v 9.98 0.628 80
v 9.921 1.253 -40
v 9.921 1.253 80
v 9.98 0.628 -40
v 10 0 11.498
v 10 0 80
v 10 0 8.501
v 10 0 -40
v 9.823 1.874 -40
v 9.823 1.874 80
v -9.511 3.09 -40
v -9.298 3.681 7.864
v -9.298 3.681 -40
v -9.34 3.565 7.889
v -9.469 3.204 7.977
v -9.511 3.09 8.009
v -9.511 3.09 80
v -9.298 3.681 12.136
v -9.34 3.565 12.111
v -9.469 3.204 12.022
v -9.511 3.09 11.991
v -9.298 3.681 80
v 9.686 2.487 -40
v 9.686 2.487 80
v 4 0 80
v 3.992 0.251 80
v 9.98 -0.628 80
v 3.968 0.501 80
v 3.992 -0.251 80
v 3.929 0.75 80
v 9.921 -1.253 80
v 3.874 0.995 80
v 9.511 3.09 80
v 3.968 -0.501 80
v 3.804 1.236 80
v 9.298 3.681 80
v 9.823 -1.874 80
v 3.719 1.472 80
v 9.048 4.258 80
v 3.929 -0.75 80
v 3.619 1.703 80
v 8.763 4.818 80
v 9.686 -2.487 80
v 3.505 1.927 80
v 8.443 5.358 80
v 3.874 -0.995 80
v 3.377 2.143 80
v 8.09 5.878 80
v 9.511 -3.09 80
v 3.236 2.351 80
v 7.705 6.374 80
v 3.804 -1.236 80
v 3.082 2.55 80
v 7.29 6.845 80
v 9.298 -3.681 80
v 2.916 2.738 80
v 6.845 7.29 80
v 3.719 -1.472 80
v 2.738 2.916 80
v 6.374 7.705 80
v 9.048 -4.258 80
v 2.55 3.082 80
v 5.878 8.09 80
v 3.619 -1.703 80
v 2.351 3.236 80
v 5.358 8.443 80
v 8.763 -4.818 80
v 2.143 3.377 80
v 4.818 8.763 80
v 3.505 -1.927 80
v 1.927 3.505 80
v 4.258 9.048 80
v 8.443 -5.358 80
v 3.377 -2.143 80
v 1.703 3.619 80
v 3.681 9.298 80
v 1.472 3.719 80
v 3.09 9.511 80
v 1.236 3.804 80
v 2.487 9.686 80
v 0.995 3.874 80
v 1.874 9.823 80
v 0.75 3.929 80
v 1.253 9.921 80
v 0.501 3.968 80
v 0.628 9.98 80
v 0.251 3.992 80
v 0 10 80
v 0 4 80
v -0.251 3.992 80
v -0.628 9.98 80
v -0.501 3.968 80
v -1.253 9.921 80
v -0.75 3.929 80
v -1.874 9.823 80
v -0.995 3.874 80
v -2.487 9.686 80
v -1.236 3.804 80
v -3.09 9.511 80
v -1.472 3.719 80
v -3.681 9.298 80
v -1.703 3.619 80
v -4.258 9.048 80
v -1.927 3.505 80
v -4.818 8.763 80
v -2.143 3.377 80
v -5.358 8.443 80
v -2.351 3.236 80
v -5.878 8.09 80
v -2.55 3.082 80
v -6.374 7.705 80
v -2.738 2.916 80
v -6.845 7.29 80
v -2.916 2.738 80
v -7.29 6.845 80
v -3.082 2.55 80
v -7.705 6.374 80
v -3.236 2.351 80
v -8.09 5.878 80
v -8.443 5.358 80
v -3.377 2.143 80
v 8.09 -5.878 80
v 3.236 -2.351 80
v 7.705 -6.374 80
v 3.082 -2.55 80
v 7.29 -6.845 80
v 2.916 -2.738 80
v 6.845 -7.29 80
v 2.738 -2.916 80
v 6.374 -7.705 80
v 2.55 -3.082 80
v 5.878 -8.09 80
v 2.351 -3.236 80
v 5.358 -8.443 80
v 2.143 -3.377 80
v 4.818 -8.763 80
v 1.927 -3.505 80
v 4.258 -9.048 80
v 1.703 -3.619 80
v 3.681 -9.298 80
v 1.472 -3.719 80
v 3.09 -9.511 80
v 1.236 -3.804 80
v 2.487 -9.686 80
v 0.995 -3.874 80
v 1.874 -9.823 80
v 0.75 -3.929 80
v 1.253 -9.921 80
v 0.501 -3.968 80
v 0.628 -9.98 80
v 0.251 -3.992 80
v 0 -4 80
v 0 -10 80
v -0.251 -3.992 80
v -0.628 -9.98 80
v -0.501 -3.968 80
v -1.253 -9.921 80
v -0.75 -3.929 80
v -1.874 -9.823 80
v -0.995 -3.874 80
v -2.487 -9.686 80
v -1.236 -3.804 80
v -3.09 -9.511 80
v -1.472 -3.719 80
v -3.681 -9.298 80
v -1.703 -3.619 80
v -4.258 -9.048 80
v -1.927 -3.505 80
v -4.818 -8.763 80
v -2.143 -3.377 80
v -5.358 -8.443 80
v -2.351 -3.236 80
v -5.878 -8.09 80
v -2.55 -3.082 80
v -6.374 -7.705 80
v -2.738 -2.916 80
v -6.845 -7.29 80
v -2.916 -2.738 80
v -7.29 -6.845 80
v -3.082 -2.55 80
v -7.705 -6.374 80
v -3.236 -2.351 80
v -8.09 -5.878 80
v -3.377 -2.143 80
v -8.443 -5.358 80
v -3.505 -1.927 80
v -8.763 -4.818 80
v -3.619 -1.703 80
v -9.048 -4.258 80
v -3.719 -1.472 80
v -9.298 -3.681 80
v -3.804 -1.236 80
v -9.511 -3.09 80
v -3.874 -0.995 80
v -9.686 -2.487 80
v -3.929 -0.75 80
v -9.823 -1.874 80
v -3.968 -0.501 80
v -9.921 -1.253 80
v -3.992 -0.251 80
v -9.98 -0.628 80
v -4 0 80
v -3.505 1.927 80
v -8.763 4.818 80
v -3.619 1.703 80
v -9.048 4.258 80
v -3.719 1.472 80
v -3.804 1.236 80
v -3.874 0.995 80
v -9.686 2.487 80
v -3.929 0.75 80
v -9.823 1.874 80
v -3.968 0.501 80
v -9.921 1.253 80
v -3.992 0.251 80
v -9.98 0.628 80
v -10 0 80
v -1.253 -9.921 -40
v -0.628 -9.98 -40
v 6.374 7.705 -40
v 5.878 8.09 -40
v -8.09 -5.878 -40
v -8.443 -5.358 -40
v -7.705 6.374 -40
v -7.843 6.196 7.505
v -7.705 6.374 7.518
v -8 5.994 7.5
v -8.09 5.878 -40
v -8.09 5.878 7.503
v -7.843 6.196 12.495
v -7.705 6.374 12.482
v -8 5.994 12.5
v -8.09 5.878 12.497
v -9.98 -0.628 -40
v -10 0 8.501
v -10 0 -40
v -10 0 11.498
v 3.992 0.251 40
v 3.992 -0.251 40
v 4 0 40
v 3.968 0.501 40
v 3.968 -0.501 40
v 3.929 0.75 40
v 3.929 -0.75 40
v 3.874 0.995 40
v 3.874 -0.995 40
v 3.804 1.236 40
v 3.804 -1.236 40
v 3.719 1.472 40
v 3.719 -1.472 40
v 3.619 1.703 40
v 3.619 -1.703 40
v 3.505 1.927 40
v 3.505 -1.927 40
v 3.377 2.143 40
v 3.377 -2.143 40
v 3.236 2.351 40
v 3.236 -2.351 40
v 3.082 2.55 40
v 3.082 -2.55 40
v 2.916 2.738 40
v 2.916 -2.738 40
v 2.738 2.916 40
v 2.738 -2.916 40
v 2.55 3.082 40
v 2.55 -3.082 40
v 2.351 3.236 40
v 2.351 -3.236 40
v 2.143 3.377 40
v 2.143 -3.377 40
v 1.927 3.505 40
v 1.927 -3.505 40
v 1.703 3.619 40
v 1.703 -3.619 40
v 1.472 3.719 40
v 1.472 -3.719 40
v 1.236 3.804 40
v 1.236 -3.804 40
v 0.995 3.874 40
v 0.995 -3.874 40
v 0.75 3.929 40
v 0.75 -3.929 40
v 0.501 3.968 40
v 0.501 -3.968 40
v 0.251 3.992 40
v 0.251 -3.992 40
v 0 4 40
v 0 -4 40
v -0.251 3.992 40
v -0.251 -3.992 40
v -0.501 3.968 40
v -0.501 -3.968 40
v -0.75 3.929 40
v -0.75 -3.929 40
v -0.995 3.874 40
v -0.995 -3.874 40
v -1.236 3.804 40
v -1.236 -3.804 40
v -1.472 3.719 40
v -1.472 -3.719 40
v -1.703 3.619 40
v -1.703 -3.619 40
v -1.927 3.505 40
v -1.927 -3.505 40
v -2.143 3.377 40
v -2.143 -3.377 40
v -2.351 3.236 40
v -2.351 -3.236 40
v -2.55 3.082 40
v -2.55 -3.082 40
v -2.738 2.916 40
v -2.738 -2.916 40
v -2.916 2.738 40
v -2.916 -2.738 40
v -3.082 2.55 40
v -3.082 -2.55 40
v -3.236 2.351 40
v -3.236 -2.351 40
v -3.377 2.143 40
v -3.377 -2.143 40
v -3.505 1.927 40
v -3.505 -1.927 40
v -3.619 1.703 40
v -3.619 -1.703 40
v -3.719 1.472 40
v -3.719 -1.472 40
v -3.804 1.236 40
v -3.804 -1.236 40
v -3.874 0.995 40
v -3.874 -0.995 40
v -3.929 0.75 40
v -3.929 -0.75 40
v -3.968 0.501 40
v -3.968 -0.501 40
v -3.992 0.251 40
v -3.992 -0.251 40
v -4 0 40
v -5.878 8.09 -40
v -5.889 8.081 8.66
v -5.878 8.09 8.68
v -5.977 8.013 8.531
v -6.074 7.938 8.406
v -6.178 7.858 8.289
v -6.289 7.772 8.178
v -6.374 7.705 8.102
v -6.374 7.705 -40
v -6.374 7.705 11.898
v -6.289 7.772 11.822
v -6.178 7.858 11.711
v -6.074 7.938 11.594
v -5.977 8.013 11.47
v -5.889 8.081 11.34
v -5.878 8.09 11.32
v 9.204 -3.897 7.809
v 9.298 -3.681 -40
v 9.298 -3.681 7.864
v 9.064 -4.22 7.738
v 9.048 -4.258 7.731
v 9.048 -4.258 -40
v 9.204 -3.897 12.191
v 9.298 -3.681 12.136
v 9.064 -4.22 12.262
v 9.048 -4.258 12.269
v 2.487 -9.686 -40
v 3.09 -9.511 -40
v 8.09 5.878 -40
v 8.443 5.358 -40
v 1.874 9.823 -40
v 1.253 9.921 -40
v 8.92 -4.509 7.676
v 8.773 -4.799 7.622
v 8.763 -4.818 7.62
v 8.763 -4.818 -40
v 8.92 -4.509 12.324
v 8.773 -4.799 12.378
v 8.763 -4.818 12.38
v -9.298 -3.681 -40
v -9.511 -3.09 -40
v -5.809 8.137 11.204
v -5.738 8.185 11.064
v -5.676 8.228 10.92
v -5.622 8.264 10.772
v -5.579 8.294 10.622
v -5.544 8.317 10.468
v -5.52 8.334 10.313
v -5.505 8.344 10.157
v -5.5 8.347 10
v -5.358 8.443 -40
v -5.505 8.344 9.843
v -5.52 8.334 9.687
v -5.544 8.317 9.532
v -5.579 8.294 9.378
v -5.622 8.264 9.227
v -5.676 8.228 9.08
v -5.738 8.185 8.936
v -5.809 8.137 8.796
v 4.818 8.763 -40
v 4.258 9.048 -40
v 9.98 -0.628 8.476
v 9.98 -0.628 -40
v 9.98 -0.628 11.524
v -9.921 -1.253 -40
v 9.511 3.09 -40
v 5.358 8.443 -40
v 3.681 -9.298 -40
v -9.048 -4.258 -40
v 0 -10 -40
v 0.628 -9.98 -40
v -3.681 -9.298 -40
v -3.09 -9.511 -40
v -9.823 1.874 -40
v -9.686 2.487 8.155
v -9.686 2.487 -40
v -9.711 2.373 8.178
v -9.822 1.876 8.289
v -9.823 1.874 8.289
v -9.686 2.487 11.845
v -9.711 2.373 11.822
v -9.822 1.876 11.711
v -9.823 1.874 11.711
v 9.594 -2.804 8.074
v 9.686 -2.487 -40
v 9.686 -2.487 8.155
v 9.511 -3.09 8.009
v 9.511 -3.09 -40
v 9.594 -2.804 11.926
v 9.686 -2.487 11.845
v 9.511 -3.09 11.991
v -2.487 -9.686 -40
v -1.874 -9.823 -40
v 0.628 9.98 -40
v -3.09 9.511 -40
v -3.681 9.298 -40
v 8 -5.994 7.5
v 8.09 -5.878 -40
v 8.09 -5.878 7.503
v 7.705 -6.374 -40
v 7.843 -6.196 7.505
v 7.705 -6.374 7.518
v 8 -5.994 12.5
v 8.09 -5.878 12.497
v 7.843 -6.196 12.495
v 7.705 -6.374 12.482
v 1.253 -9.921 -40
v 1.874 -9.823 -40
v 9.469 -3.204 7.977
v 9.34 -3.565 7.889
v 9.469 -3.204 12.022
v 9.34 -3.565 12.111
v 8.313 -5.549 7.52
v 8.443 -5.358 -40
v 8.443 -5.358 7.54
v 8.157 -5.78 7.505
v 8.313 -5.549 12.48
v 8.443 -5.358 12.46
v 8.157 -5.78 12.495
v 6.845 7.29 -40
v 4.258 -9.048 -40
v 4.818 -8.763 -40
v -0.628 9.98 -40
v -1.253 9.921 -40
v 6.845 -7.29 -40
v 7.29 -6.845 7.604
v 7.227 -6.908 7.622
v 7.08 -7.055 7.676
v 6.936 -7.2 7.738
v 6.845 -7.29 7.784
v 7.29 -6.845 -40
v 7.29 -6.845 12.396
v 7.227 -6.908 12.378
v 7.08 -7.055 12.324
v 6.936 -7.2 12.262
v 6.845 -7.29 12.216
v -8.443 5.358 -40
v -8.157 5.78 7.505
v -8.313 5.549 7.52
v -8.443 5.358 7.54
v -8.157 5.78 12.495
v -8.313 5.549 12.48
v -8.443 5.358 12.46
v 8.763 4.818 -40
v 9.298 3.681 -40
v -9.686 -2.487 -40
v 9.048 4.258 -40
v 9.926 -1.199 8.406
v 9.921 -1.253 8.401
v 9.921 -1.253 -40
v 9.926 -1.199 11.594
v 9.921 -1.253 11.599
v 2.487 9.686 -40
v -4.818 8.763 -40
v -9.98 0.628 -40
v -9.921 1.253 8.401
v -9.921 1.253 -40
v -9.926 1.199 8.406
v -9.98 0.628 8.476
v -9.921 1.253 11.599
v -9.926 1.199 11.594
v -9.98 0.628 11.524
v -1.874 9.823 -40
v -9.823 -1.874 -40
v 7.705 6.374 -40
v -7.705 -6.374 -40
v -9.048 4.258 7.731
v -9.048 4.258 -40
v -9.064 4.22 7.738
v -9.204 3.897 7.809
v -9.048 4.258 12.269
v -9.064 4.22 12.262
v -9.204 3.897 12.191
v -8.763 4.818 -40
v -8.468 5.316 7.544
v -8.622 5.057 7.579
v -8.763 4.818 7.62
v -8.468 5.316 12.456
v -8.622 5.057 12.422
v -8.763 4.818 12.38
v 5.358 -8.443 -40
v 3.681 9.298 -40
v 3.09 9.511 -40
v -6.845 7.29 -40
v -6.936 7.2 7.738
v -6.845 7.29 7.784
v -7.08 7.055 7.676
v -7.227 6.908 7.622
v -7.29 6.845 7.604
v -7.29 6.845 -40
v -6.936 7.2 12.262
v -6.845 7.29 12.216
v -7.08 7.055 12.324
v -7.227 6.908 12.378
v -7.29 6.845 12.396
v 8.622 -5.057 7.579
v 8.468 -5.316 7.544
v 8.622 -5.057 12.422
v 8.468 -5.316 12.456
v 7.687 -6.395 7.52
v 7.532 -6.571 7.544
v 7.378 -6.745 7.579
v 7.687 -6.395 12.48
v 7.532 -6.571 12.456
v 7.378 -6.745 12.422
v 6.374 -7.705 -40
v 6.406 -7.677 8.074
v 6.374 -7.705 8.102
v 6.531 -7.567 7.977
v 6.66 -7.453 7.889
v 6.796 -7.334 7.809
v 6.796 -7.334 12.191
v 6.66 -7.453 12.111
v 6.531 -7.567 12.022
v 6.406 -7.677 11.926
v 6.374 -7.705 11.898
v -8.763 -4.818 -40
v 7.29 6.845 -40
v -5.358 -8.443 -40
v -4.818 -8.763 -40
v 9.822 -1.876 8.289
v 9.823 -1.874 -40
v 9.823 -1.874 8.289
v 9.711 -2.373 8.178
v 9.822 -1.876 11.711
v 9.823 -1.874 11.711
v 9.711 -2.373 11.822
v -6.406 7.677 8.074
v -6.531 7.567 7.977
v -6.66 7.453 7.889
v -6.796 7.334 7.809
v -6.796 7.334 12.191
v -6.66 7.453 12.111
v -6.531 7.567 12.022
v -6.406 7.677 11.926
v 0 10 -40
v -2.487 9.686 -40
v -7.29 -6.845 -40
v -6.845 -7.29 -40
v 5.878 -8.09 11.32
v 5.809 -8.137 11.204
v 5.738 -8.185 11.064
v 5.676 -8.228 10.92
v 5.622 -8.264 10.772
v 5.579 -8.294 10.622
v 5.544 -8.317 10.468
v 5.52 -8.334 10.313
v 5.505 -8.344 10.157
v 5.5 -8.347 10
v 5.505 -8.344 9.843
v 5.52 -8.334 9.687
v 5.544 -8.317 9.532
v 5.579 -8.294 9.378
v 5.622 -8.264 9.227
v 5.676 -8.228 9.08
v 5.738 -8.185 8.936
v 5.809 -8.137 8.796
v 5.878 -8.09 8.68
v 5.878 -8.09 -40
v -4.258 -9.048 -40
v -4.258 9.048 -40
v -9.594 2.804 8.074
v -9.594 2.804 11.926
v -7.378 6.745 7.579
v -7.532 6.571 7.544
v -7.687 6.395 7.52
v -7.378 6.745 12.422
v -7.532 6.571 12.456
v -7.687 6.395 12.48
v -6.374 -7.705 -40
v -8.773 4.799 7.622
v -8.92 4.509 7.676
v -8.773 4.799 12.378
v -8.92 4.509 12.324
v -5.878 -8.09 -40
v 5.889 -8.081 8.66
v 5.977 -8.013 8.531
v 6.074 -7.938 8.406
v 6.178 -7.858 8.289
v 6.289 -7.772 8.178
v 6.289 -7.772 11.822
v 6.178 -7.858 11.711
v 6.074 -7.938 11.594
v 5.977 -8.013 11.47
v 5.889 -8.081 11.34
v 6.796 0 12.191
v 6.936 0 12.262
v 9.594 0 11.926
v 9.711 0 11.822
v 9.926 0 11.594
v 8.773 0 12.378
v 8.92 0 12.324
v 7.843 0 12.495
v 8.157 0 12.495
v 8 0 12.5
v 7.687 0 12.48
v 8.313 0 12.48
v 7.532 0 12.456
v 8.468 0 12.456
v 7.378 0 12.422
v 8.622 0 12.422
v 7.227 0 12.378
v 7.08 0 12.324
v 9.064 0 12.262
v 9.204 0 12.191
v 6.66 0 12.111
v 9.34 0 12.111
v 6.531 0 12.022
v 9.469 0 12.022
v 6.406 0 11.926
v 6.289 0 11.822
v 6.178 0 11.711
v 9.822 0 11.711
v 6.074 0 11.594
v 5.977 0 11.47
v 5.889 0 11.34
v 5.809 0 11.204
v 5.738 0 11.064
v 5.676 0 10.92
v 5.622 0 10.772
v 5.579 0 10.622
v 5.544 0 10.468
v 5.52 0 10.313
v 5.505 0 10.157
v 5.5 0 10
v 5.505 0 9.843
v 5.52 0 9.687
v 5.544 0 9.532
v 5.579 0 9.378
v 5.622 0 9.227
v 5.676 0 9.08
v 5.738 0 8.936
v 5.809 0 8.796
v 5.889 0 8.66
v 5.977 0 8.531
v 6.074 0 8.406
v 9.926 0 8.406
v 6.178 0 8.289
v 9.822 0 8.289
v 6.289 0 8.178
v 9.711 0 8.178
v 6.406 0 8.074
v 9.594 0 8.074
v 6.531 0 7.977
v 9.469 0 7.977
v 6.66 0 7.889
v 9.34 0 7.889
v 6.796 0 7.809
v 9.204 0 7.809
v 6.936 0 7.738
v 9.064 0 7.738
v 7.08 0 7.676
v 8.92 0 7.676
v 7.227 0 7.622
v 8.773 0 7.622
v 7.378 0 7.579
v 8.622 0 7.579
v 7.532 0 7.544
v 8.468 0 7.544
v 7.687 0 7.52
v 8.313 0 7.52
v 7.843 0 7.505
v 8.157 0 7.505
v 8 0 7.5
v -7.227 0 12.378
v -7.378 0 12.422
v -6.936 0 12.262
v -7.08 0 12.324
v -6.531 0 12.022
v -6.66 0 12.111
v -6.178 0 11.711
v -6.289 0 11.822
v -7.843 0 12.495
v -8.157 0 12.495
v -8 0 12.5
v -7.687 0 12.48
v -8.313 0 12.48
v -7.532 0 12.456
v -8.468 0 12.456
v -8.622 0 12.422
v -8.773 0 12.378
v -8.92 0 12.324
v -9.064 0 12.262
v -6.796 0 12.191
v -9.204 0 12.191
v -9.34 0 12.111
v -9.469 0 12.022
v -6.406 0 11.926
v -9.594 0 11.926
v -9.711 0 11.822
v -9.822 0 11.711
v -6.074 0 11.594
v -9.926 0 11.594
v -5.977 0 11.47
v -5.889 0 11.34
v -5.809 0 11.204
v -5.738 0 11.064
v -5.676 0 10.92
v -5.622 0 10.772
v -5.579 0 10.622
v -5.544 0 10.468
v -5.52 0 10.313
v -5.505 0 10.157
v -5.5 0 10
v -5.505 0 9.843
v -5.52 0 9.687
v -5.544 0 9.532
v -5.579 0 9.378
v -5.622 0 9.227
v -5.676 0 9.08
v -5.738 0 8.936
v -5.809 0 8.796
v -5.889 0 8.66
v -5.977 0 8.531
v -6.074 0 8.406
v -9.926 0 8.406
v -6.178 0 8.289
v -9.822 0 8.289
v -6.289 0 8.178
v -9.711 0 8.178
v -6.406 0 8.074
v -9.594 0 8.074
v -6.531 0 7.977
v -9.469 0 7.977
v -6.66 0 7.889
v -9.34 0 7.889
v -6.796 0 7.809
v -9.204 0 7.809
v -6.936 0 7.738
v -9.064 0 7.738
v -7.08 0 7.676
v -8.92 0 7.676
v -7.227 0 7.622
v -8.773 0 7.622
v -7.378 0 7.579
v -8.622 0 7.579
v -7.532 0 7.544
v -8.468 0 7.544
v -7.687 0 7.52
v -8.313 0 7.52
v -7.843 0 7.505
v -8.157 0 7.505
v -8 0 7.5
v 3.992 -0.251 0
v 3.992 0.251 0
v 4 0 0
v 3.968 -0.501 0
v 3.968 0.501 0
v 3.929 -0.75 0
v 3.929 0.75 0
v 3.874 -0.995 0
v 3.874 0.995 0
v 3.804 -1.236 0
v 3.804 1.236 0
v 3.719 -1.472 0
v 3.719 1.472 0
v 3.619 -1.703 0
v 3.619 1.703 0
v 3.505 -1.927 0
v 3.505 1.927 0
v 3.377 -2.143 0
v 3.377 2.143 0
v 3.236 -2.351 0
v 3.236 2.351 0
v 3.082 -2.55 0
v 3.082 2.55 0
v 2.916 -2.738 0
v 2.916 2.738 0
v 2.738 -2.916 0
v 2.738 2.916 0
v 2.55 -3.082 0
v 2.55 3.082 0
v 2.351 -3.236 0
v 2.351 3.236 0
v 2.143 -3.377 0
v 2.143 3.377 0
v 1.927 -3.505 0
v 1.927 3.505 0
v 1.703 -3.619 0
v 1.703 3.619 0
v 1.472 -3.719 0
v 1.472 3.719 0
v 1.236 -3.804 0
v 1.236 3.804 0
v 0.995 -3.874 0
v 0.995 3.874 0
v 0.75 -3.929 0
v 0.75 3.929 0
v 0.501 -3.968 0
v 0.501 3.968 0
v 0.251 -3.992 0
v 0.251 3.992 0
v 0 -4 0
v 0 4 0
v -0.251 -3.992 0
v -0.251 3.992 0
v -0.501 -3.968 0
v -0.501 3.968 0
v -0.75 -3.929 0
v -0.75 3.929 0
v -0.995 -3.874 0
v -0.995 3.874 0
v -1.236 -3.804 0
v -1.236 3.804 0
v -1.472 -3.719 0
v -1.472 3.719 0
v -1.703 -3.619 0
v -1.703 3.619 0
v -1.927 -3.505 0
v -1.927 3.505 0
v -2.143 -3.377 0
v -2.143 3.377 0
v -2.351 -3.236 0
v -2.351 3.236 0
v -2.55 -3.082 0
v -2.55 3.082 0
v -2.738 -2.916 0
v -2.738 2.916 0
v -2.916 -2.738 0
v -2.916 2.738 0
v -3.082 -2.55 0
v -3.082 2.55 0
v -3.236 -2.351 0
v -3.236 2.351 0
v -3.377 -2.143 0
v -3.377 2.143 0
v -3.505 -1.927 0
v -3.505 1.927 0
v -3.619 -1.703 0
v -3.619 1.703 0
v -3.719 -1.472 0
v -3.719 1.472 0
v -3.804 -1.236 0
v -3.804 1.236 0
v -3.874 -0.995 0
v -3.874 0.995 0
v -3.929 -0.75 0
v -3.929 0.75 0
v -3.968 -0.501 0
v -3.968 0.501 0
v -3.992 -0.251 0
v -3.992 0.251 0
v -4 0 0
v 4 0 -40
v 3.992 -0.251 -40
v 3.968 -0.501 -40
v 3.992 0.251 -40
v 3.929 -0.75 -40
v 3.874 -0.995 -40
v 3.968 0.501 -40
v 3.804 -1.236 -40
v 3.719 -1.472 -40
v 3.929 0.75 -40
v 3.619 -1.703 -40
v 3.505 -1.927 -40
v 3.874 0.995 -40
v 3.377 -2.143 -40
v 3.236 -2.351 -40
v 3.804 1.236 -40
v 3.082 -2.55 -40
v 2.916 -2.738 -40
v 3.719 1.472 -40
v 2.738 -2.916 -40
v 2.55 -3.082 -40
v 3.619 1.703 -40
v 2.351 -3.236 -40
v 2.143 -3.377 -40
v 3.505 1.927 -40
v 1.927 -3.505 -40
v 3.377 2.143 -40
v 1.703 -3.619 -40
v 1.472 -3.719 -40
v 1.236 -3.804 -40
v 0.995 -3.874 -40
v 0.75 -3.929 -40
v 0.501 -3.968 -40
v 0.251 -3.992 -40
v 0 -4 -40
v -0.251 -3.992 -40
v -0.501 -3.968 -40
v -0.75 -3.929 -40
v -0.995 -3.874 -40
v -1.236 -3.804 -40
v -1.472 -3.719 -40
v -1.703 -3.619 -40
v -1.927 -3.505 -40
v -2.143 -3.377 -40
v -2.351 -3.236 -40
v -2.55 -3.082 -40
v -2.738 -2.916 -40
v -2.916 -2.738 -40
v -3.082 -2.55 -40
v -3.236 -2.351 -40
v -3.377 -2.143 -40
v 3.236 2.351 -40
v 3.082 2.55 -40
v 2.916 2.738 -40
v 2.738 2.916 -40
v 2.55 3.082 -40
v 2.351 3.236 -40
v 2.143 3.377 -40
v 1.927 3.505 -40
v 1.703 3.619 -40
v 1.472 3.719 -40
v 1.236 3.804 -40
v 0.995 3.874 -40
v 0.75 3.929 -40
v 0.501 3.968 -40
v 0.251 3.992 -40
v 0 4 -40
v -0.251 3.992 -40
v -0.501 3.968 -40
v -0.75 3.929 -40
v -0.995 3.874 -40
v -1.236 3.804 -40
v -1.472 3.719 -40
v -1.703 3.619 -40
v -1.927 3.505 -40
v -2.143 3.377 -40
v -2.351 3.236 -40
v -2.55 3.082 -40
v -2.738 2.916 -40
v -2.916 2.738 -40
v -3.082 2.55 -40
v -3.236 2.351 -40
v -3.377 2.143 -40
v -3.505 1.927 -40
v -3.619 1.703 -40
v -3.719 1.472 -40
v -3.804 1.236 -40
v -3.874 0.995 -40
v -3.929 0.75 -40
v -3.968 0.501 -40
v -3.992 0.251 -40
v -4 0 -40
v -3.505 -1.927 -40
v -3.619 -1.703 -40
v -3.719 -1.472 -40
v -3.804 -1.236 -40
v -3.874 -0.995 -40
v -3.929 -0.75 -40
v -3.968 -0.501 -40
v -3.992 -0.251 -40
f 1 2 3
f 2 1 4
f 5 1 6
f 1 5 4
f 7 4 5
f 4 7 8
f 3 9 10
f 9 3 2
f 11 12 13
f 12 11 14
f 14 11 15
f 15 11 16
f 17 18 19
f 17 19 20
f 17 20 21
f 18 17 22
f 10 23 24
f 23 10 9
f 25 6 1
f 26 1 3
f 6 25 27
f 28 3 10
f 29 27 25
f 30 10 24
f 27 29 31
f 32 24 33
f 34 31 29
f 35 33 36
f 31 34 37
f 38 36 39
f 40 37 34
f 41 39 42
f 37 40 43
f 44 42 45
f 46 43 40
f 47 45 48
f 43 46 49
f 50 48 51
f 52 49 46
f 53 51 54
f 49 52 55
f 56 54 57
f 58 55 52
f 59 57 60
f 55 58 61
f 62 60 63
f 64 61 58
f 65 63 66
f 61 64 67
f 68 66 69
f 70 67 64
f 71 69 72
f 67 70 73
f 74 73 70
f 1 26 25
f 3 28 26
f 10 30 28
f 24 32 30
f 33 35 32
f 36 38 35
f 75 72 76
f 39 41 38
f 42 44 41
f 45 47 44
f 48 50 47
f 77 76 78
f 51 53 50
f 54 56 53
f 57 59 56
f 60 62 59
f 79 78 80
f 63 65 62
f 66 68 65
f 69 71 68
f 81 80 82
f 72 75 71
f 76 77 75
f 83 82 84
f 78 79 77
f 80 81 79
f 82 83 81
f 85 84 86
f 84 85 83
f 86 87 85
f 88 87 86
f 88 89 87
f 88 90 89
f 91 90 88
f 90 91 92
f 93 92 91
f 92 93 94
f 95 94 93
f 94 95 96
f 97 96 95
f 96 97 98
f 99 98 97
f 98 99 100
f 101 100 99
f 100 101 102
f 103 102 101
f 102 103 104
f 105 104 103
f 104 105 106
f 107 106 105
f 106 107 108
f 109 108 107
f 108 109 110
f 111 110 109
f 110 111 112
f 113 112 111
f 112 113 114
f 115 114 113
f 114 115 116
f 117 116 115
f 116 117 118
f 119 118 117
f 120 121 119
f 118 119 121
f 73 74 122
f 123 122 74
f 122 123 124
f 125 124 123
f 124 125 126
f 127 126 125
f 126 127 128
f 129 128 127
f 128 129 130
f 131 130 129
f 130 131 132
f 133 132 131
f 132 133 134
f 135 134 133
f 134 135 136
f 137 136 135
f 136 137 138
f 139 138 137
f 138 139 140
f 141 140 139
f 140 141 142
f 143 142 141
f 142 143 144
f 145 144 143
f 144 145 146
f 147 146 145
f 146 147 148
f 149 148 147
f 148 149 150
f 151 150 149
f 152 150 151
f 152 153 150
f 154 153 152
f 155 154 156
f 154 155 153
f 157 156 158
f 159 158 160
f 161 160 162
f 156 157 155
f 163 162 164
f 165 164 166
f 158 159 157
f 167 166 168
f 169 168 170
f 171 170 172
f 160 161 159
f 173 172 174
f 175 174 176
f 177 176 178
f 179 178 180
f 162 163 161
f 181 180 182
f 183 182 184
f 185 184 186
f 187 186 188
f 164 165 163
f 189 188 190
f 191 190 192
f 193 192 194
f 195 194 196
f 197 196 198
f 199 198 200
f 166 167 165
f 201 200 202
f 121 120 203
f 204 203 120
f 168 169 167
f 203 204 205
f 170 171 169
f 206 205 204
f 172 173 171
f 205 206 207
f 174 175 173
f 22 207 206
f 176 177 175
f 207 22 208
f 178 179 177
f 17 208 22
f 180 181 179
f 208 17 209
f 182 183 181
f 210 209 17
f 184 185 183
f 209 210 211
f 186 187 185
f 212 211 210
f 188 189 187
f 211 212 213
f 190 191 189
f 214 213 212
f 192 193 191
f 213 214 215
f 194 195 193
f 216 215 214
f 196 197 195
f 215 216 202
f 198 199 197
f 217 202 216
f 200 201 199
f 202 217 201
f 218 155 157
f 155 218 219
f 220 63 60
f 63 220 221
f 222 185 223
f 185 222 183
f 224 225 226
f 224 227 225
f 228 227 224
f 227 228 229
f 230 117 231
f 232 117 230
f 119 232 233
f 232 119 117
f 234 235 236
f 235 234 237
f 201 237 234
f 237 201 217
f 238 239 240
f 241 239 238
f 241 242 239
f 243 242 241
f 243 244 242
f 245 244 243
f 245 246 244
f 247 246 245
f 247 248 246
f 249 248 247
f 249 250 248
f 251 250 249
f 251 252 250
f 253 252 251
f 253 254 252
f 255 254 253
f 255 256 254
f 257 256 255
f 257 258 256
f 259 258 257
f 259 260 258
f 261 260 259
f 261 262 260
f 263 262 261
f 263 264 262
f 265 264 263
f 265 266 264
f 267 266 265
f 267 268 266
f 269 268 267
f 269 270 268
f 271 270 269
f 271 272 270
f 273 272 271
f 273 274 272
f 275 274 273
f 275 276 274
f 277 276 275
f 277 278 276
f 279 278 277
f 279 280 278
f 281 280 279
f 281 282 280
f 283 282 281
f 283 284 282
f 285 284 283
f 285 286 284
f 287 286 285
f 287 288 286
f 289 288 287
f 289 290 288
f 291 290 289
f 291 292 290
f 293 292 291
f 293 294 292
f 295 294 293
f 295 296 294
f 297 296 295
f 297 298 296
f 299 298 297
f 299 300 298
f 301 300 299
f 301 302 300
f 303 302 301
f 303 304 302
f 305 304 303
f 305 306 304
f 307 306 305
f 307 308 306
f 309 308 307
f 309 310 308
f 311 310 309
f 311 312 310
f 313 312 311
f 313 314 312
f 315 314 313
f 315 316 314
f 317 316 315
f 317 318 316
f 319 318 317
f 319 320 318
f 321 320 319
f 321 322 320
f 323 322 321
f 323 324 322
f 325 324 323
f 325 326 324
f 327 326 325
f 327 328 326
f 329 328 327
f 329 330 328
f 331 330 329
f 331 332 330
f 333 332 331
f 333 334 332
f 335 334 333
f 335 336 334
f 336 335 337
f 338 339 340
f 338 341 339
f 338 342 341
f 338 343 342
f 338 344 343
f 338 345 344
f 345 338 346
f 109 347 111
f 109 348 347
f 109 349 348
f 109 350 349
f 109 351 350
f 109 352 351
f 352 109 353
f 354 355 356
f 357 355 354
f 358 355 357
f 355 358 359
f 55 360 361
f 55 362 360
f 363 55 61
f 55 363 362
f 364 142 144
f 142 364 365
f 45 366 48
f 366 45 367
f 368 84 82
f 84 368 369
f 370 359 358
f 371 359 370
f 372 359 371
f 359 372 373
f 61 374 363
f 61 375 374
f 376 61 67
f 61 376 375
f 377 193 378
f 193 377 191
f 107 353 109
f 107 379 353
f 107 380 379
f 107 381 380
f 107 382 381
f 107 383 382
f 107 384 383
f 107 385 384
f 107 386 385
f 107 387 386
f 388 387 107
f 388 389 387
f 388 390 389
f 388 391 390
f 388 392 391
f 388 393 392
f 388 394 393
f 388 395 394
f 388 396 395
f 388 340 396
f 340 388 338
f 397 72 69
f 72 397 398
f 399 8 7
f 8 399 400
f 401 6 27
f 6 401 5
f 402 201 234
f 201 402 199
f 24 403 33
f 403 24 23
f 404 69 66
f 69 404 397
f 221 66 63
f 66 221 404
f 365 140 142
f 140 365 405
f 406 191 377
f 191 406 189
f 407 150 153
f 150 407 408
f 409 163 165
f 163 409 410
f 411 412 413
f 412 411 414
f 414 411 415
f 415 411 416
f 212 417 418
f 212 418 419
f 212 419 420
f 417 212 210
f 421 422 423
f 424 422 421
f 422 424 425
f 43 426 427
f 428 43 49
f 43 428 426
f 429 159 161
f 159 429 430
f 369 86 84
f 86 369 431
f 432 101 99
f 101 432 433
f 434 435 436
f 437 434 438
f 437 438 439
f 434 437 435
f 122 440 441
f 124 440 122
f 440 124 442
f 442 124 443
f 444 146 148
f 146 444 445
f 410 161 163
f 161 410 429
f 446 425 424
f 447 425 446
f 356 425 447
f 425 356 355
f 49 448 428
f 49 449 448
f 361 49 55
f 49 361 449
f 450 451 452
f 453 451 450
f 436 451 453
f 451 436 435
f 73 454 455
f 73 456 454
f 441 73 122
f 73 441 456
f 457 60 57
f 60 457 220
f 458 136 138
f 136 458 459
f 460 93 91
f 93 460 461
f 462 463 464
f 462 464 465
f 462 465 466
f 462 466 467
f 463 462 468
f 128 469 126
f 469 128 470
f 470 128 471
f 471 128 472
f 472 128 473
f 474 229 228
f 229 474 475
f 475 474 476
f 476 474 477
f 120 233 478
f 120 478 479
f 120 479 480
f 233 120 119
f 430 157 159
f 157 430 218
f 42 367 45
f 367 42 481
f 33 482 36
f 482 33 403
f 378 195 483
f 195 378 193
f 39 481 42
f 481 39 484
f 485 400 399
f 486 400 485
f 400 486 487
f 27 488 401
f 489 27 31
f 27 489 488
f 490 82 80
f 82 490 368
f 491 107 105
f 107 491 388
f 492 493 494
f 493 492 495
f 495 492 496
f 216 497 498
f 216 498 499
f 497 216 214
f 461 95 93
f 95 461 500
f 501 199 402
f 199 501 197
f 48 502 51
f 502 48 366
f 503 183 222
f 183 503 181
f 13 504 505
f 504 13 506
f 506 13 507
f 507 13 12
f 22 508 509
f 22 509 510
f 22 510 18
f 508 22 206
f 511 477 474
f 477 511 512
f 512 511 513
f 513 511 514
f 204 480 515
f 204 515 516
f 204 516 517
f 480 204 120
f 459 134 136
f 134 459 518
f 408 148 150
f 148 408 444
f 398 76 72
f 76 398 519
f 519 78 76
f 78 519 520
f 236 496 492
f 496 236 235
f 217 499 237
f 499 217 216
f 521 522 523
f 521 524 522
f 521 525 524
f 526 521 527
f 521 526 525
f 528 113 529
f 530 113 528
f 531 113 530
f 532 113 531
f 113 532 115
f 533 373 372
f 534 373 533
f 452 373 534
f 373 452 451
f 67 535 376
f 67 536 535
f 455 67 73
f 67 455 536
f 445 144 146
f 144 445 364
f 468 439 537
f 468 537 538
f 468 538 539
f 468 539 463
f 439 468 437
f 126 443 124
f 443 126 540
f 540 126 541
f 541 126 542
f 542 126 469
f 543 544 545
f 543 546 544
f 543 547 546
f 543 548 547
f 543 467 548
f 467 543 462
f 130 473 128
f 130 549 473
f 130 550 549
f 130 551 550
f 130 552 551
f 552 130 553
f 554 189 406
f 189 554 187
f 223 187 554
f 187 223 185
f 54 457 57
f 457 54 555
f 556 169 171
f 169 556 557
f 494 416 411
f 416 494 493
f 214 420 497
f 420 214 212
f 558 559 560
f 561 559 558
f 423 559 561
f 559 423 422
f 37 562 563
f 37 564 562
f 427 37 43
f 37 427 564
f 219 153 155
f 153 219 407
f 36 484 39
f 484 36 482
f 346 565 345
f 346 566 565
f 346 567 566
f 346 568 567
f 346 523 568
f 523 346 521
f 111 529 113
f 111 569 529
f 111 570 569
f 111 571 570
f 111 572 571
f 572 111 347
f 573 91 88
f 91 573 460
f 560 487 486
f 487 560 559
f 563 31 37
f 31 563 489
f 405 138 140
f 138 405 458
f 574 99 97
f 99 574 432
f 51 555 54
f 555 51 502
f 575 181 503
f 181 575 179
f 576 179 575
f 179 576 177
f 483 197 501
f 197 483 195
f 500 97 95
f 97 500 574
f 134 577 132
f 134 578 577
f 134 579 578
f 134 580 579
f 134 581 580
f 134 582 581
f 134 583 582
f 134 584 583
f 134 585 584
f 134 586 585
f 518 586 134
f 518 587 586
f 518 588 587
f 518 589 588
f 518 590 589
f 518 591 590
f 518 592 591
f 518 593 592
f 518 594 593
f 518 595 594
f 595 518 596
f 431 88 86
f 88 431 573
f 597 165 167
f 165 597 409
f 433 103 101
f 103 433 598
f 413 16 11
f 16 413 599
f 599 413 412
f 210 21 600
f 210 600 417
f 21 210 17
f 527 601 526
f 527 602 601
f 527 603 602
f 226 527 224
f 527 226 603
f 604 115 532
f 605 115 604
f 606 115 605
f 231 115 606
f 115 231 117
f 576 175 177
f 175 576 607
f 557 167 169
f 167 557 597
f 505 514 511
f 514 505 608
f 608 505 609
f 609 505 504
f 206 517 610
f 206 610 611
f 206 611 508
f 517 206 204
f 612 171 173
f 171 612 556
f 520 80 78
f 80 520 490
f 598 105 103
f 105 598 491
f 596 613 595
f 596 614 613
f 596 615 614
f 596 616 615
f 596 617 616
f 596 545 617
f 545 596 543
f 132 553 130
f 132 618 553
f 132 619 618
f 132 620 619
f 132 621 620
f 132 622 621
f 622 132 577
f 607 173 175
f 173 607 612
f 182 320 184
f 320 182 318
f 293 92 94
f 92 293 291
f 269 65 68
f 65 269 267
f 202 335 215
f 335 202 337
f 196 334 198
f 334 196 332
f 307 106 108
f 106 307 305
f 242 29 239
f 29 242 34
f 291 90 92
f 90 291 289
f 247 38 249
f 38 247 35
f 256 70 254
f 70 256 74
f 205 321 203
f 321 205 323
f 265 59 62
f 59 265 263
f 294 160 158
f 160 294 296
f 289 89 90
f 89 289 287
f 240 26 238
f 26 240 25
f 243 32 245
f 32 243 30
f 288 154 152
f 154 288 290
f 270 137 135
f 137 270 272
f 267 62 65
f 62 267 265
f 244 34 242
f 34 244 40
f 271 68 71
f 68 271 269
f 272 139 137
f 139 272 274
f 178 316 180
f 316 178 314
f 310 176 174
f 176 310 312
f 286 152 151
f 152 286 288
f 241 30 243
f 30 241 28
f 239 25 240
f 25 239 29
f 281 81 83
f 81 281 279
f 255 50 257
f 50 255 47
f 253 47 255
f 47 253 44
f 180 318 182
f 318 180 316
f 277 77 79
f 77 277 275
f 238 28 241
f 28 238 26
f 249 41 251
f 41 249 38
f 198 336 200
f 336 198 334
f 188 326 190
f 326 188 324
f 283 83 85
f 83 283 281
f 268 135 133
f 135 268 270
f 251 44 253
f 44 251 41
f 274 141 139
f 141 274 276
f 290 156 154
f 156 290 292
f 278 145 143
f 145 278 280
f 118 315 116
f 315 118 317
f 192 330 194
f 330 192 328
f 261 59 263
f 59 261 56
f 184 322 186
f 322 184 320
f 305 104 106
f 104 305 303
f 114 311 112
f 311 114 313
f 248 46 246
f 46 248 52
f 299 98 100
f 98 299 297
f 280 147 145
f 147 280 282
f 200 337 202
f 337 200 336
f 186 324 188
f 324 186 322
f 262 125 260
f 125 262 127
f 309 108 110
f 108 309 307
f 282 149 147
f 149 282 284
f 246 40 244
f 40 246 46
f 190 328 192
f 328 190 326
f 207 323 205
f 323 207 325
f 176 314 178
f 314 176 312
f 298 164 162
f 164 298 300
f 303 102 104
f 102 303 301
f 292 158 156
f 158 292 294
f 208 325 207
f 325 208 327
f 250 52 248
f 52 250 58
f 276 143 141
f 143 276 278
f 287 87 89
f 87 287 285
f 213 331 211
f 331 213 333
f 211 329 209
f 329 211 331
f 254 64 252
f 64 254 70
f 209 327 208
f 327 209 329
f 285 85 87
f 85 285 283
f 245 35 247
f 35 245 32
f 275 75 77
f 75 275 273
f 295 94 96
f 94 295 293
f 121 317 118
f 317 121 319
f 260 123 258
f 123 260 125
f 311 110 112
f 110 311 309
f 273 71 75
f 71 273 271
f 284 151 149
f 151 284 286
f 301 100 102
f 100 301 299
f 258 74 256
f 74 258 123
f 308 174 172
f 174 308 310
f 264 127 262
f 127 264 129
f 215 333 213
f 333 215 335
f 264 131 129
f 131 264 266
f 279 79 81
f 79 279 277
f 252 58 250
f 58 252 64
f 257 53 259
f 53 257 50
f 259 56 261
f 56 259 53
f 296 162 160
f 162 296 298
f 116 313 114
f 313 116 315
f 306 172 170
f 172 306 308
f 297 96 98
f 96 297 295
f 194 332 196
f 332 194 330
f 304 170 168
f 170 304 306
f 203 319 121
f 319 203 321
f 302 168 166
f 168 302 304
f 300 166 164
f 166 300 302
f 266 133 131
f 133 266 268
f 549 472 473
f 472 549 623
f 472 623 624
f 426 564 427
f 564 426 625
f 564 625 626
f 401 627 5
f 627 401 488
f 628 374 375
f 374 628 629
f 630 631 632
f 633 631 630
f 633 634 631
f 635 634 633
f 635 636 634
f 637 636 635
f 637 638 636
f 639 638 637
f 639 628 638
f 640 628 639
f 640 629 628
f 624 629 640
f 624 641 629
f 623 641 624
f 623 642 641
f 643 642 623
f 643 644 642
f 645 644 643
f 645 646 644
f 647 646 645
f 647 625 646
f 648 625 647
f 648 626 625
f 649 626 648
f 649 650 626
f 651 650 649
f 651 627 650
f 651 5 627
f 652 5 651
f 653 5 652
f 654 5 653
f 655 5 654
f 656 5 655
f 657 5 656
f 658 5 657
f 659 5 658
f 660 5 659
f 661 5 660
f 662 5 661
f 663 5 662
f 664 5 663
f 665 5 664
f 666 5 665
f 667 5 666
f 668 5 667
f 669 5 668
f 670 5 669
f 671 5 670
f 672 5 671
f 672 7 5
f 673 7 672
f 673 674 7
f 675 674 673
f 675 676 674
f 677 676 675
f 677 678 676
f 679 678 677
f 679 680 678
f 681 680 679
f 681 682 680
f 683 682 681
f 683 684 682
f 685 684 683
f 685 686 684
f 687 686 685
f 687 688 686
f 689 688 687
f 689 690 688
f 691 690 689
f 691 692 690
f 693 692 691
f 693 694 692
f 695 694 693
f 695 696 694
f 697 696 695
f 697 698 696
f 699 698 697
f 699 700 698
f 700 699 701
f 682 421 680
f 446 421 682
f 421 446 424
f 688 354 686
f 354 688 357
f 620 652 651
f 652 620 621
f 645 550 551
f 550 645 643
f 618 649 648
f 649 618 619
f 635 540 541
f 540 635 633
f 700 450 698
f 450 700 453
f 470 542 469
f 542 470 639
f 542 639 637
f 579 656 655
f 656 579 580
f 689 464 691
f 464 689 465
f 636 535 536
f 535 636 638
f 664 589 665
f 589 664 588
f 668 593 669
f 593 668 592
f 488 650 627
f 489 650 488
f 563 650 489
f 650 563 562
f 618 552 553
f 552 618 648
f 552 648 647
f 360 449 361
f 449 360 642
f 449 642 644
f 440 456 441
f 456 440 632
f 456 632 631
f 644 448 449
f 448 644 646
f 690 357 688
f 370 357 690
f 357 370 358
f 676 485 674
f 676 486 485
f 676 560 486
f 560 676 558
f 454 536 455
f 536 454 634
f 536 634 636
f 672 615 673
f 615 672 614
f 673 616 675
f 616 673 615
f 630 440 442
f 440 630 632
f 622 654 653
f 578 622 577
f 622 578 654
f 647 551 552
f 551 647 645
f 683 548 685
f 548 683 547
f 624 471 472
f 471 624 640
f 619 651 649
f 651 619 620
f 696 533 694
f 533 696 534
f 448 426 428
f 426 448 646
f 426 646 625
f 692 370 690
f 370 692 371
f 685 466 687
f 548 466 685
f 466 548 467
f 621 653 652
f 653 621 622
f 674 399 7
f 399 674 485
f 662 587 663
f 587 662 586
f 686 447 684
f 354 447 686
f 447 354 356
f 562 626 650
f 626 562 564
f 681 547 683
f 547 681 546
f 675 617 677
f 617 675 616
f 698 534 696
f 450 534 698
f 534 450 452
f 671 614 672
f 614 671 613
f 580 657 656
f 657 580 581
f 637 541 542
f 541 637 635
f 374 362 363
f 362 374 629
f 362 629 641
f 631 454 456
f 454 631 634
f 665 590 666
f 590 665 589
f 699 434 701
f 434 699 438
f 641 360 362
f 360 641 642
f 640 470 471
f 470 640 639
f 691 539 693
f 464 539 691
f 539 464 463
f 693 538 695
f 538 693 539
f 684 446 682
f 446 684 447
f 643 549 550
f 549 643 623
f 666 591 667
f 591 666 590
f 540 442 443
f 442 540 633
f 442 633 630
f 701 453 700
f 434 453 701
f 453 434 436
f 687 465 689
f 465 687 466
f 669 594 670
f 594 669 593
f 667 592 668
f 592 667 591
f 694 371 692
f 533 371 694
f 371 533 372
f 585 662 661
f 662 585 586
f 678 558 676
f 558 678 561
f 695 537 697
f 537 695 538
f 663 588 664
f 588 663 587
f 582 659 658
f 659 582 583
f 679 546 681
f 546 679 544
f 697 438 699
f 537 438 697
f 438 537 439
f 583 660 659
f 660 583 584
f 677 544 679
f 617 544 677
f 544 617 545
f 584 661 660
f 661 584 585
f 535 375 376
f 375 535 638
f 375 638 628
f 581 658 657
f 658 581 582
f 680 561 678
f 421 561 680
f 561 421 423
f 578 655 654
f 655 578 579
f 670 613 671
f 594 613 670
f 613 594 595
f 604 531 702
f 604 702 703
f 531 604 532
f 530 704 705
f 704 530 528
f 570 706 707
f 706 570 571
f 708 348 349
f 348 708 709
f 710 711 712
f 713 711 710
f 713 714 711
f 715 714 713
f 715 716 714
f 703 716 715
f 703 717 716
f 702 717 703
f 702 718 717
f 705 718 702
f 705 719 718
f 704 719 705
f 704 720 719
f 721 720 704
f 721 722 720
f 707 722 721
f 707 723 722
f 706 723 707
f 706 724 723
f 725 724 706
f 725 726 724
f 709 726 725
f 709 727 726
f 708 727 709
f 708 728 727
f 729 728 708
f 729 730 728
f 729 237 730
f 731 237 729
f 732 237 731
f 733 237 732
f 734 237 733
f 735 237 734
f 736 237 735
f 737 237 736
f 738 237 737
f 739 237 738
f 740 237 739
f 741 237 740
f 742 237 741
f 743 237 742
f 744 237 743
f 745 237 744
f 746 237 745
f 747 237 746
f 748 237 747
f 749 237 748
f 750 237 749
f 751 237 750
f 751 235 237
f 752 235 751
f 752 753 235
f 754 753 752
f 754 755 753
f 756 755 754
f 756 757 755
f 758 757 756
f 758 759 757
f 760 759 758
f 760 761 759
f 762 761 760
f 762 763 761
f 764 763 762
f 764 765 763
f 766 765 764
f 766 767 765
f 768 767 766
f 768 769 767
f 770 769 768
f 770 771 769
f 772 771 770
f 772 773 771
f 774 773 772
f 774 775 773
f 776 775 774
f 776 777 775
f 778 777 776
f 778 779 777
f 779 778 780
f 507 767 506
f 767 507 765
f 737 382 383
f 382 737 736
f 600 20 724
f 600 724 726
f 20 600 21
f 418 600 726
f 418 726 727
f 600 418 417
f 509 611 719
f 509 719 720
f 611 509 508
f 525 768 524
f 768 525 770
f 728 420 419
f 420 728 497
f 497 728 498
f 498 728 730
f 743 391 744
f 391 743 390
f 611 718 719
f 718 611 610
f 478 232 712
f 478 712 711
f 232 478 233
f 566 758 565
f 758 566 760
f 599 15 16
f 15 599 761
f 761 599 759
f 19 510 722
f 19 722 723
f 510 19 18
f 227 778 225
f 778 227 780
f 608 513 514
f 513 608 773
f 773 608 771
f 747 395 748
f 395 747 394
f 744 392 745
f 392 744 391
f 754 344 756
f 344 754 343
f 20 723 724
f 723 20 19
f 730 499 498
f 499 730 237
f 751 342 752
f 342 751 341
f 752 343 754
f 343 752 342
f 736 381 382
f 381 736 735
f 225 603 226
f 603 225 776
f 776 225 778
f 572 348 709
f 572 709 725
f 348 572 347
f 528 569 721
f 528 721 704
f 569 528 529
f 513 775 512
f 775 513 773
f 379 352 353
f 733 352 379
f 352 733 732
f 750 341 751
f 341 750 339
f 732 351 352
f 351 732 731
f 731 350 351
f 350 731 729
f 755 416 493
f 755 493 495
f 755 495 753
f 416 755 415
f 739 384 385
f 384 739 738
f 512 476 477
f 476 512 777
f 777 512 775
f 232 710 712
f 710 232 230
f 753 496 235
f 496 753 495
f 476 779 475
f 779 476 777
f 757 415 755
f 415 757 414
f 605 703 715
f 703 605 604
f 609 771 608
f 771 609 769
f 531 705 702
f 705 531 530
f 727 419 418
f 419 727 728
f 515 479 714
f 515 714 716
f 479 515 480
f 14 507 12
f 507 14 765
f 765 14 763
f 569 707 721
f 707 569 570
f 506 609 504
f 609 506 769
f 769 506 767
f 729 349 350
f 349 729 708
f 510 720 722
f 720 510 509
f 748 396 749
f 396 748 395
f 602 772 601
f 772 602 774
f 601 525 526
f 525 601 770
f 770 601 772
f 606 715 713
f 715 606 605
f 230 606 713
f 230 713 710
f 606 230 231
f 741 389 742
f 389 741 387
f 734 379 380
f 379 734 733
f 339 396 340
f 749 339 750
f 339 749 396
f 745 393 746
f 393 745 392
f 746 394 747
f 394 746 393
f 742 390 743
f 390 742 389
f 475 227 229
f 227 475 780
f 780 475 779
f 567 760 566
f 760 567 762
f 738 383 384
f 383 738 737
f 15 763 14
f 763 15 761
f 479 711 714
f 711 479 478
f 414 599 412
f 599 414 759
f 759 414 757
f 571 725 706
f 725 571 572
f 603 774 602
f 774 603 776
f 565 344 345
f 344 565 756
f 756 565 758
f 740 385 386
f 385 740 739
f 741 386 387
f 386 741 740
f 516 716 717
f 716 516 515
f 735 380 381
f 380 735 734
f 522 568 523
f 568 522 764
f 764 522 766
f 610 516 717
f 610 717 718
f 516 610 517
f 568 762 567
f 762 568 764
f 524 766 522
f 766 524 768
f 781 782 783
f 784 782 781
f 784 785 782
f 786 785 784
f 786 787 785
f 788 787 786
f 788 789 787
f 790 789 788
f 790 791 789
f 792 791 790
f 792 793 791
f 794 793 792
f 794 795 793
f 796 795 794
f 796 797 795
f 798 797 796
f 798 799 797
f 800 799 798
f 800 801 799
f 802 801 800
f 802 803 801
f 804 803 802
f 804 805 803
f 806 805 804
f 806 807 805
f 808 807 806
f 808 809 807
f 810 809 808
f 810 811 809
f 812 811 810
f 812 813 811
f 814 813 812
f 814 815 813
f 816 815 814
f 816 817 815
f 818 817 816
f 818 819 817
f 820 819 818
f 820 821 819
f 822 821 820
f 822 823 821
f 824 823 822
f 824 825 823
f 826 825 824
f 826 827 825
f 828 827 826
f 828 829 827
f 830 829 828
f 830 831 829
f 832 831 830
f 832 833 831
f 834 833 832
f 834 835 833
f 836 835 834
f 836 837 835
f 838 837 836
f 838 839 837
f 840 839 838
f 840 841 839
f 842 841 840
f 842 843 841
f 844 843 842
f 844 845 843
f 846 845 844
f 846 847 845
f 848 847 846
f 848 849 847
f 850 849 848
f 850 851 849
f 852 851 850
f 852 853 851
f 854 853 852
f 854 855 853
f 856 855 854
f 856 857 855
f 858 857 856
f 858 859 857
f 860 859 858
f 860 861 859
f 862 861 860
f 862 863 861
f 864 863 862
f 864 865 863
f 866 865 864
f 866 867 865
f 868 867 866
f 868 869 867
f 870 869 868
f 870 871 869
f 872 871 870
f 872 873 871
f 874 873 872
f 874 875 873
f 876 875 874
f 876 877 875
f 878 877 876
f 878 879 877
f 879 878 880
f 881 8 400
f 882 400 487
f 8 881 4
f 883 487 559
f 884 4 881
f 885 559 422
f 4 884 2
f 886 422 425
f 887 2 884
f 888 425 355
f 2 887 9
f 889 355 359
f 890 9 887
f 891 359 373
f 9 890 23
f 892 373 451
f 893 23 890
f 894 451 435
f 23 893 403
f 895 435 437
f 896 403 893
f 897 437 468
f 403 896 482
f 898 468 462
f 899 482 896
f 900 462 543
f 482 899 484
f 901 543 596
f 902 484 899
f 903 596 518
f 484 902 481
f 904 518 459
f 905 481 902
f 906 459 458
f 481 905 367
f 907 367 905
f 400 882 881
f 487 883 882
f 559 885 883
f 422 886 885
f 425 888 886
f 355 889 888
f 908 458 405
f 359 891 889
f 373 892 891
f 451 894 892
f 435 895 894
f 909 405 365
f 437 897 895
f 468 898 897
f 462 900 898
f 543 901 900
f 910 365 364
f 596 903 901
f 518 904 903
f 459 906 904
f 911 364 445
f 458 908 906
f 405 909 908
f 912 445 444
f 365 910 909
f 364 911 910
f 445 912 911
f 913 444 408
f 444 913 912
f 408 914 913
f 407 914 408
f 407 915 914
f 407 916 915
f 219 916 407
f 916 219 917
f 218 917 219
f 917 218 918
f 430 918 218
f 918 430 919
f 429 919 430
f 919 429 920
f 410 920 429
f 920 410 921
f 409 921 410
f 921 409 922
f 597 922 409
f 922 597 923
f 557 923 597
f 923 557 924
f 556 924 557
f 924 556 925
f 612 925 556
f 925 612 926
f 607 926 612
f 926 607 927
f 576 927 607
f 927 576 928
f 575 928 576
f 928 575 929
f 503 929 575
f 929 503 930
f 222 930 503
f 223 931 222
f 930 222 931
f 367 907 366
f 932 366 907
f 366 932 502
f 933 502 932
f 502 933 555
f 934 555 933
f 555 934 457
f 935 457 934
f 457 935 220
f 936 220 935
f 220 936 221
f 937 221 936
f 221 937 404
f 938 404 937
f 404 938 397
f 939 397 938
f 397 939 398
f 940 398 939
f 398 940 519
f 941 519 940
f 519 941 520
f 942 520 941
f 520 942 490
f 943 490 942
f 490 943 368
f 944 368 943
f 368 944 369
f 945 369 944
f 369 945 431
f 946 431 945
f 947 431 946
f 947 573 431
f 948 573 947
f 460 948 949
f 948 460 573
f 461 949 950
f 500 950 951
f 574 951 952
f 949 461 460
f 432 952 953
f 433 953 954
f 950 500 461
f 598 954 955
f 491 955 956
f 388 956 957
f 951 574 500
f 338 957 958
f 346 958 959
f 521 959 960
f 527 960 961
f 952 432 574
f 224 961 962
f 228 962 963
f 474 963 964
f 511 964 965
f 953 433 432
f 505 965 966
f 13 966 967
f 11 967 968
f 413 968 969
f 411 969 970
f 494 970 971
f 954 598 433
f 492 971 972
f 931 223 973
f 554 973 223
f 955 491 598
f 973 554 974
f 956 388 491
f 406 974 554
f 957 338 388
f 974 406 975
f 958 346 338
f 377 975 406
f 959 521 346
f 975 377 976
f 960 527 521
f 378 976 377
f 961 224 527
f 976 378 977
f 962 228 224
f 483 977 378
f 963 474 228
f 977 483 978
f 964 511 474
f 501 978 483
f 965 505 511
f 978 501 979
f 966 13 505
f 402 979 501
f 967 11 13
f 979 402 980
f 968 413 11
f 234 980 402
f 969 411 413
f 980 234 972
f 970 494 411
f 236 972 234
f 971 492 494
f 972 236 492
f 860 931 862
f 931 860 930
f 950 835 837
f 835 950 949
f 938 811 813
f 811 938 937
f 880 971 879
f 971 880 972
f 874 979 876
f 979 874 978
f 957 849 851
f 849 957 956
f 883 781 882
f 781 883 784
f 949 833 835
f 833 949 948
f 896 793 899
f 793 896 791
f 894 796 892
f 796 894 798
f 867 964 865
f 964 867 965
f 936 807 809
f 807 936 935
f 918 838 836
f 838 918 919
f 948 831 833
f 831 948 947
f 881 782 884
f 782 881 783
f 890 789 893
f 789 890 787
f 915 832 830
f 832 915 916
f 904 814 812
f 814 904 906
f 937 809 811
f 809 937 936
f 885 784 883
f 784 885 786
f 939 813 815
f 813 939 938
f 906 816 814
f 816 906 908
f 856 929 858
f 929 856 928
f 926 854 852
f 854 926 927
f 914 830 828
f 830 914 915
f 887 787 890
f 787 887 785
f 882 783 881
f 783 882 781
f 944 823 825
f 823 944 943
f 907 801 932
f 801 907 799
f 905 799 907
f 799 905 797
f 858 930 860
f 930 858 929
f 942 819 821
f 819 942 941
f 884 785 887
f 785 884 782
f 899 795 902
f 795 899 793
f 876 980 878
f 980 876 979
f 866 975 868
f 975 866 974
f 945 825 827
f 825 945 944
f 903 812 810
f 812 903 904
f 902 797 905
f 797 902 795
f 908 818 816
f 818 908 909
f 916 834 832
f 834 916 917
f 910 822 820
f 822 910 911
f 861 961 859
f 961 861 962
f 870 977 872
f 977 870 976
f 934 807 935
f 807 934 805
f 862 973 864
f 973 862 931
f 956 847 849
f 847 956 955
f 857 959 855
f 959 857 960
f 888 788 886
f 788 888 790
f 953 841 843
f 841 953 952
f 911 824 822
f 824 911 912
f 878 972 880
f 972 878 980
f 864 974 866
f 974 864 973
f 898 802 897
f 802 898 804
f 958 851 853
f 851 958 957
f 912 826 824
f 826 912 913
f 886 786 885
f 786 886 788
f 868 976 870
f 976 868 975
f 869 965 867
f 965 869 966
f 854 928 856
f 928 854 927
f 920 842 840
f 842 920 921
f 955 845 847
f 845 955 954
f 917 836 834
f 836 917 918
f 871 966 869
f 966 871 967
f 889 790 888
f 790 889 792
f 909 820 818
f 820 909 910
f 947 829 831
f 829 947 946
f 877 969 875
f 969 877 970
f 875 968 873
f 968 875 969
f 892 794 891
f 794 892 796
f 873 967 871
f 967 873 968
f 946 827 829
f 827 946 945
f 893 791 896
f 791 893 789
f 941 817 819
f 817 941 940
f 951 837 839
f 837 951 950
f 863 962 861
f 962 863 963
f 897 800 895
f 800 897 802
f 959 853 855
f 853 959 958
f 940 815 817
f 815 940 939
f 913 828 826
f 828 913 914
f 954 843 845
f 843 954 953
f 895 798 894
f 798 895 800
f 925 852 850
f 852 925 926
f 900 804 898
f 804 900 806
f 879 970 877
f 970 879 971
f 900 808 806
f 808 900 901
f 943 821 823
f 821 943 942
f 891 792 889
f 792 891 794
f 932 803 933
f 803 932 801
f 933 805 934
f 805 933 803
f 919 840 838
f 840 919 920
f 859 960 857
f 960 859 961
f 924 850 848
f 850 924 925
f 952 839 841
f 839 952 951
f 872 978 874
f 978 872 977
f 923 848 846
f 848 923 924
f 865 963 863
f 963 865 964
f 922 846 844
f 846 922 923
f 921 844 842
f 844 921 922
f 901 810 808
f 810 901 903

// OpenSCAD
// Parameters
cylinder_diameter = 20;
cylinder_length = 40;
shaft_hole_diameter = 8;
bolt_hole_diameter = 5;
bolt_hole_offset = 10;

// Module for the input/output cylinder
module end_cylinder() {
    difference() {
        cylinder(d=cylinder_diameter, h=cylinder_length, $fn=100);
        translate([0, 0, -1]) cylinder(d=shaft_hole_diameter, h=cylinder_length + 2, $fn=100);
    }
}

// Module for the central cylinder with bolt holes
module central_cylinder() {
    difference() {
        cylinder(d=cylinder_diameter, h=cylinder_length, $fn=100);
        // Bolt holes
        for (angle = [0, 180]) {
            rotate([0, 0, angle])
            translate([cylinder_diameter / 2 - 2, 0, cylinder_length / 2 - bolt_hole_offset])
            rotate([90, 0, 0])
            cylinder(d=bolt_hole_diameter, h=cylinder_diameter, $fn=100);
        }
    }
}

// Assemble the coupling
module flexible_coupling() {
    translate([0, 0, cylinder_length]) end_cylinder();
    central_cylinder();
    translate([0, 0, -cylinder_length]) end_cylinder();
}

// Render the model
flexible_coupling();
